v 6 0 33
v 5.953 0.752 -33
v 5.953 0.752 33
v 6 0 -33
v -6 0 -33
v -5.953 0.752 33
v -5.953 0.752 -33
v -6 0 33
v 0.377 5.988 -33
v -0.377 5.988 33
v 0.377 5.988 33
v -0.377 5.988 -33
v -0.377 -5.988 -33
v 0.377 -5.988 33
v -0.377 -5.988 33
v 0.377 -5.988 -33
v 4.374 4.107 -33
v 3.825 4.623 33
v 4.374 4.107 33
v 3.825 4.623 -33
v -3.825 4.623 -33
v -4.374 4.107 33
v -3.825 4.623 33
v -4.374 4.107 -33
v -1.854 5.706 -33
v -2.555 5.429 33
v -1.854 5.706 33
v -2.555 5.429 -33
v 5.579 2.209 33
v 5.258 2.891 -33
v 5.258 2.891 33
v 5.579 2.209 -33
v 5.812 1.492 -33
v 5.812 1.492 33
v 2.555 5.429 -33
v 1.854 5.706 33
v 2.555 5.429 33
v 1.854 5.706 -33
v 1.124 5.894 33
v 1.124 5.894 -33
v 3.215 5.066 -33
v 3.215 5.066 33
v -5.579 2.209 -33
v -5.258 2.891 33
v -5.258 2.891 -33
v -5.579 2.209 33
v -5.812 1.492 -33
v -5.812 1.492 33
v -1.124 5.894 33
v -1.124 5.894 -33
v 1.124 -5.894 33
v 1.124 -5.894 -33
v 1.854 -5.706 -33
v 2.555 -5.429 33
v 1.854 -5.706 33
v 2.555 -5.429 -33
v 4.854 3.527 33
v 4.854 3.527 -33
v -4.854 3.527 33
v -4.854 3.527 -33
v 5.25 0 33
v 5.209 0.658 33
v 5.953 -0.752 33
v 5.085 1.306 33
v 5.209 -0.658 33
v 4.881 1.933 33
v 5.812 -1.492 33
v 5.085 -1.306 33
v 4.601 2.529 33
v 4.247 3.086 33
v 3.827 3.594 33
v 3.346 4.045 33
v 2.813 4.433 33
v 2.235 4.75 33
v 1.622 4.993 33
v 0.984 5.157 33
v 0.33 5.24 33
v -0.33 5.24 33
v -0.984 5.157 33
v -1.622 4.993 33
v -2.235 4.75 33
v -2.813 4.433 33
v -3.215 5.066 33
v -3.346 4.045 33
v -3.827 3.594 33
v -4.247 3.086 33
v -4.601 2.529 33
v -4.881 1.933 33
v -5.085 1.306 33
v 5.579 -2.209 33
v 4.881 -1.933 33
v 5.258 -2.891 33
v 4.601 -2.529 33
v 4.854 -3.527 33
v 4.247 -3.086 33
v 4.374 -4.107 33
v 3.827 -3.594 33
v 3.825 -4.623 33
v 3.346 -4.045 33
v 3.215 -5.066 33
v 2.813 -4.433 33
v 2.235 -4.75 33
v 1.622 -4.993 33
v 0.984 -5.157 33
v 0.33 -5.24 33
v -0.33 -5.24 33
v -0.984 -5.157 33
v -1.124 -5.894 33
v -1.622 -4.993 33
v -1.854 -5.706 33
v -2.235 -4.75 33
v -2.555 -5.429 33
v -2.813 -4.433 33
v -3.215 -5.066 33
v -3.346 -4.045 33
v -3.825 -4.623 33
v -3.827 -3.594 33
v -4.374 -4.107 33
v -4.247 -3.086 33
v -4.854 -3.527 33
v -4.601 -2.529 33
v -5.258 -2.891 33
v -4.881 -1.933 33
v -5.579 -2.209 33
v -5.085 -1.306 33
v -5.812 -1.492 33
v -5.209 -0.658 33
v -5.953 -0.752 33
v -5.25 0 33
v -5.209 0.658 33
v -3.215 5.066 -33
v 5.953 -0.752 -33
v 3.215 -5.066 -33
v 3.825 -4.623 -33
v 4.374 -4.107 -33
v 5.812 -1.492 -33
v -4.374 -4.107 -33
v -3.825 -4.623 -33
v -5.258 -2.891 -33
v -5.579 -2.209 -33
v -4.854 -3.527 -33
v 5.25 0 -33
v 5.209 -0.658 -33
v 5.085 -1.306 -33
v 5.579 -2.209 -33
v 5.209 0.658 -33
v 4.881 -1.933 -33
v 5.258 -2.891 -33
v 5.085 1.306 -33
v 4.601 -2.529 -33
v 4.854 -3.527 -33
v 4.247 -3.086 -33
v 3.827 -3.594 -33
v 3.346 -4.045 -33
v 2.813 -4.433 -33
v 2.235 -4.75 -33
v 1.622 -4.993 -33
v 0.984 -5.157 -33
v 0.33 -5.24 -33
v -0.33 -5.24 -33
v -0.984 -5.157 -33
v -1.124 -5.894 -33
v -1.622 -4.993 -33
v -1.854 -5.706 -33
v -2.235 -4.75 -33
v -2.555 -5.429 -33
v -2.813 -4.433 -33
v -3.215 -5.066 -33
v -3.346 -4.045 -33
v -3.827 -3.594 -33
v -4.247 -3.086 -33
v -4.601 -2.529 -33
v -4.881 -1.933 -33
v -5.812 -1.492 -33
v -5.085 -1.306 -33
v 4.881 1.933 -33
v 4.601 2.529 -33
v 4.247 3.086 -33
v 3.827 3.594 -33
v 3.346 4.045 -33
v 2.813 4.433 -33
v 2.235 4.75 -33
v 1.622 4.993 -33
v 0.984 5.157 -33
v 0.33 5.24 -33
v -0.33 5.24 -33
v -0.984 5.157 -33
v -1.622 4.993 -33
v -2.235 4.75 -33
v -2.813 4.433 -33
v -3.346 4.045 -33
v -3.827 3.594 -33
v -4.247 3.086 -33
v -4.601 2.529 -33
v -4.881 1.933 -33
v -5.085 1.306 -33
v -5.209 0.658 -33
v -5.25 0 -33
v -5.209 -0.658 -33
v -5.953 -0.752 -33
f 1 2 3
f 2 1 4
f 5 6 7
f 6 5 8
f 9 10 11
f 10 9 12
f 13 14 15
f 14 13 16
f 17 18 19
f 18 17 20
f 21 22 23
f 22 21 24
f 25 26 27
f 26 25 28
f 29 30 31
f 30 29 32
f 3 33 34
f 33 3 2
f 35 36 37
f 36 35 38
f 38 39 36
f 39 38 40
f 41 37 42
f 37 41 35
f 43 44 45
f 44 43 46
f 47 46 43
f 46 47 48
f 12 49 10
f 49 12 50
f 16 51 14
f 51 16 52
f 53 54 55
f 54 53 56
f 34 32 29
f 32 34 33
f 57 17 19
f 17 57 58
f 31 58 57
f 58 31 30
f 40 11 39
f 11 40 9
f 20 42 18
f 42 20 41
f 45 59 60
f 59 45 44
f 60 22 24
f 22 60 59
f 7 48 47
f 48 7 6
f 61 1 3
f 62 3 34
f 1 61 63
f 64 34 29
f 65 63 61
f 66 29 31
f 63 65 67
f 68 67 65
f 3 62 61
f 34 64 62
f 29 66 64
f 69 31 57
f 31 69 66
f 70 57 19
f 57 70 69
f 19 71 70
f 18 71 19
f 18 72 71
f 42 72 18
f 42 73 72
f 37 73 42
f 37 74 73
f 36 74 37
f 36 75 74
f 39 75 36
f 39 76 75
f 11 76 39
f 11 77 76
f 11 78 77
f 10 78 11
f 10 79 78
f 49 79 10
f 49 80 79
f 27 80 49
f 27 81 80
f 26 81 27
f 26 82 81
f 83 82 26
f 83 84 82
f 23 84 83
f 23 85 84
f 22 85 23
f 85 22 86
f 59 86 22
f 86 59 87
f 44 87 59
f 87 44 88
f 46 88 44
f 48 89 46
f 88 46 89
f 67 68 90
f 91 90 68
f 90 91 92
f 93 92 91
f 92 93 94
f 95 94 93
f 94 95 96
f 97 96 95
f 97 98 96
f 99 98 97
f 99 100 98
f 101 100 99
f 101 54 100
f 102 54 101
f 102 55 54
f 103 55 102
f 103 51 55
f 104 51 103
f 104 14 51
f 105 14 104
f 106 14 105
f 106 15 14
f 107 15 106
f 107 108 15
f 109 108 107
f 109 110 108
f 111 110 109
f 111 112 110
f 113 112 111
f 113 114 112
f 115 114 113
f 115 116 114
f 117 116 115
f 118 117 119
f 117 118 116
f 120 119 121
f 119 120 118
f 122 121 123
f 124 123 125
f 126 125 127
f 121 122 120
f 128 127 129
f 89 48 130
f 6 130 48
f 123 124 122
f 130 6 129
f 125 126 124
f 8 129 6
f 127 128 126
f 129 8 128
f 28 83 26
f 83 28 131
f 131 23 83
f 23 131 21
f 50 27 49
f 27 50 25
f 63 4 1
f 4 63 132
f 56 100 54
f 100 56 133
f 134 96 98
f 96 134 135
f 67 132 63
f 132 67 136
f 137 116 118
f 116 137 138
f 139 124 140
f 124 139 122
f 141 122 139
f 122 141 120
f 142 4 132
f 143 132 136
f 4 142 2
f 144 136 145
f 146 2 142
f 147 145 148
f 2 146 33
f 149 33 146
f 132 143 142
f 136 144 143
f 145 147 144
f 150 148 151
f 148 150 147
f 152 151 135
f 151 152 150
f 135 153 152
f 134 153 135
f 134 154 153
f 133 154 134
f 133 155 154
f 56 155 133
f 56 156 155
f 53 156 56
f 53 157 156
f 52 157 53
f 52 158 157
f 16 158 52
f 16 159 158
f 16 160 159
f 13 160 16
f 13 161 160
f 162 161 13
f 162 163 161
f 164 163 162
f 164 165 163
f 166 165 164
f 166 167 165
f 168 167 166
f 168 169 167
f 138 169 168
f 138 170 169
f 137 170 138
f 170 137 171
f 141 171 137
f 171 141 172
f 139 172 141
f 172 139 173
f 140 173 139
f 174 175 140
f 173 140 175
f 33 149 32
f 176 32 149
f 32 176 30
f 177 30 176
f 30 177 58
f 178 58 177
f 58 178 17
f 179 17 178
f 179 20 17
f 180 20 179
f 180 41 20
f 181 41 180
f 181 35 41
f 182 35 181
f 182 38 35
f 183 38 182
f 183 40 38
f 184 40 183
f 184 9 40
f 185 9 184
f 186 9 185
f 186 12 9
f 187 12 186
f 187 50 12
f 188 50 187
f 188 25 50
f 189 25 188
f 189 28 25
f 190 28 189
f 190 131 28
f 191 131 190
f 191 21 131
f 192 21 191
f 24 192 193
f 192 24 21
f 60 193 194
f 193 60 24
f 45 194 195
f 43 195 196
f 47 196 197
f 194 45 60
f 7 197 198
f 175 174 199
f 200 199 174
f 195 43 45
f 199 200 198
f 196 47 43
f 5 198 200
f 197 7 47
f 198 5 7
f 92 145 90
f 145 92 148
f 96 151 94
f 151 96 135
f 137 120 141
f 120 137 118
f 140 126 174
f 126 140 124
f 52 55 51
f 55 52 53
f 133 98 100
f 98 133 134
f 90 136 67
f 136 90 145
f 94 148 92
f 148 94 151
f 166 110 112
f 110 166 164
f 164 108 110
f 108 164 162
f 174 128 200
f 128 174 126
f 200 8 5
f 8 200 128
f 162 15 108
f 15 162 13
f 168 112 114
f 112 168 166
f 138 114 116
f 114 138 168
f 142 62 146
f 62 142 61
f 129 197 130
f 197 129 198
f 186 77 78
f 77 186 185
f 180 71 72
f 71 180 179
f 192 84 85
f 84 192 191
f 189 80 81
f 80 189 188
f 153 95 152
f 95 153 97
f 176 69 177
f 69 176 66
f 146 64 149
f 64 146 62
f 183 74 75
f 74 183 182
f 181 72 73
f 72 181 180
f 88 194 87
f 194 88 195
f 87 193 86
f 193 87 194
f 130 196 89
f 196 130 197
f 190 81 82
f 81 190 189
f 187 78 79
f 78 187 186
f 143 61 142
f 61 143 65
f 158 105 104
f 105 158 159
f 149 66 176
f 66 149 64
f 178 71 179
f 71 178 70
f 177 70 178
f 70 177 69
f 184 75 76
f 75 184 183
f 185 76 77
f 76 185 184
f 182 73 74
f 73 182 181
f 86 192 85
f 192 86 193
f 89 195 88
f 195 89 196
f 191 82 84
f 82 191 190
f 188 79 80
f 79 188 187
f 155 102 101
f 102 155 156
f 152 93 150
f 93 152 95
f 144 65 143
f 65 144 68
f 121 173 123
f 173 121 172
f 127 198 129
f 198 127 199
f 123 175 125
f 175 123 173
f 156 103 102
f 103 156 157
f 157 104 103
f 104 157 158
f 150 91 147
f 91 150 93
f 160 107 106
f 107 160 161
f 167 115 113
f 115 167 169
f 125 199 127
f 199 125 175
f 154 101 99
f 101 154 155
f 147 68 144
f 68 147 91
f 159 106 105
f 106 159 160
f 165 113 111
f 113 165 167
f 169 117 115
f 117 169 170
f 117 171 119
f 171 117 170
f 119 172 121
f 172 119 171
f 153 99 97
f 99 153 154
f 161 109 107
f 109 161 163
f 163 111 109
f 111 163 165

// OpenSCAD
$fn = 50;


difference() {
	union() {
		translate(v = [0, 0, -33.0000000000]) {
			cylinder(h = 66, r = 6.0000000000);
		}
	}
	union() {
		translate(v = [0, 0, -100.0000000000]) {
			cylinder(h = 200, r = 5.2500000000);
		}
	}
}
